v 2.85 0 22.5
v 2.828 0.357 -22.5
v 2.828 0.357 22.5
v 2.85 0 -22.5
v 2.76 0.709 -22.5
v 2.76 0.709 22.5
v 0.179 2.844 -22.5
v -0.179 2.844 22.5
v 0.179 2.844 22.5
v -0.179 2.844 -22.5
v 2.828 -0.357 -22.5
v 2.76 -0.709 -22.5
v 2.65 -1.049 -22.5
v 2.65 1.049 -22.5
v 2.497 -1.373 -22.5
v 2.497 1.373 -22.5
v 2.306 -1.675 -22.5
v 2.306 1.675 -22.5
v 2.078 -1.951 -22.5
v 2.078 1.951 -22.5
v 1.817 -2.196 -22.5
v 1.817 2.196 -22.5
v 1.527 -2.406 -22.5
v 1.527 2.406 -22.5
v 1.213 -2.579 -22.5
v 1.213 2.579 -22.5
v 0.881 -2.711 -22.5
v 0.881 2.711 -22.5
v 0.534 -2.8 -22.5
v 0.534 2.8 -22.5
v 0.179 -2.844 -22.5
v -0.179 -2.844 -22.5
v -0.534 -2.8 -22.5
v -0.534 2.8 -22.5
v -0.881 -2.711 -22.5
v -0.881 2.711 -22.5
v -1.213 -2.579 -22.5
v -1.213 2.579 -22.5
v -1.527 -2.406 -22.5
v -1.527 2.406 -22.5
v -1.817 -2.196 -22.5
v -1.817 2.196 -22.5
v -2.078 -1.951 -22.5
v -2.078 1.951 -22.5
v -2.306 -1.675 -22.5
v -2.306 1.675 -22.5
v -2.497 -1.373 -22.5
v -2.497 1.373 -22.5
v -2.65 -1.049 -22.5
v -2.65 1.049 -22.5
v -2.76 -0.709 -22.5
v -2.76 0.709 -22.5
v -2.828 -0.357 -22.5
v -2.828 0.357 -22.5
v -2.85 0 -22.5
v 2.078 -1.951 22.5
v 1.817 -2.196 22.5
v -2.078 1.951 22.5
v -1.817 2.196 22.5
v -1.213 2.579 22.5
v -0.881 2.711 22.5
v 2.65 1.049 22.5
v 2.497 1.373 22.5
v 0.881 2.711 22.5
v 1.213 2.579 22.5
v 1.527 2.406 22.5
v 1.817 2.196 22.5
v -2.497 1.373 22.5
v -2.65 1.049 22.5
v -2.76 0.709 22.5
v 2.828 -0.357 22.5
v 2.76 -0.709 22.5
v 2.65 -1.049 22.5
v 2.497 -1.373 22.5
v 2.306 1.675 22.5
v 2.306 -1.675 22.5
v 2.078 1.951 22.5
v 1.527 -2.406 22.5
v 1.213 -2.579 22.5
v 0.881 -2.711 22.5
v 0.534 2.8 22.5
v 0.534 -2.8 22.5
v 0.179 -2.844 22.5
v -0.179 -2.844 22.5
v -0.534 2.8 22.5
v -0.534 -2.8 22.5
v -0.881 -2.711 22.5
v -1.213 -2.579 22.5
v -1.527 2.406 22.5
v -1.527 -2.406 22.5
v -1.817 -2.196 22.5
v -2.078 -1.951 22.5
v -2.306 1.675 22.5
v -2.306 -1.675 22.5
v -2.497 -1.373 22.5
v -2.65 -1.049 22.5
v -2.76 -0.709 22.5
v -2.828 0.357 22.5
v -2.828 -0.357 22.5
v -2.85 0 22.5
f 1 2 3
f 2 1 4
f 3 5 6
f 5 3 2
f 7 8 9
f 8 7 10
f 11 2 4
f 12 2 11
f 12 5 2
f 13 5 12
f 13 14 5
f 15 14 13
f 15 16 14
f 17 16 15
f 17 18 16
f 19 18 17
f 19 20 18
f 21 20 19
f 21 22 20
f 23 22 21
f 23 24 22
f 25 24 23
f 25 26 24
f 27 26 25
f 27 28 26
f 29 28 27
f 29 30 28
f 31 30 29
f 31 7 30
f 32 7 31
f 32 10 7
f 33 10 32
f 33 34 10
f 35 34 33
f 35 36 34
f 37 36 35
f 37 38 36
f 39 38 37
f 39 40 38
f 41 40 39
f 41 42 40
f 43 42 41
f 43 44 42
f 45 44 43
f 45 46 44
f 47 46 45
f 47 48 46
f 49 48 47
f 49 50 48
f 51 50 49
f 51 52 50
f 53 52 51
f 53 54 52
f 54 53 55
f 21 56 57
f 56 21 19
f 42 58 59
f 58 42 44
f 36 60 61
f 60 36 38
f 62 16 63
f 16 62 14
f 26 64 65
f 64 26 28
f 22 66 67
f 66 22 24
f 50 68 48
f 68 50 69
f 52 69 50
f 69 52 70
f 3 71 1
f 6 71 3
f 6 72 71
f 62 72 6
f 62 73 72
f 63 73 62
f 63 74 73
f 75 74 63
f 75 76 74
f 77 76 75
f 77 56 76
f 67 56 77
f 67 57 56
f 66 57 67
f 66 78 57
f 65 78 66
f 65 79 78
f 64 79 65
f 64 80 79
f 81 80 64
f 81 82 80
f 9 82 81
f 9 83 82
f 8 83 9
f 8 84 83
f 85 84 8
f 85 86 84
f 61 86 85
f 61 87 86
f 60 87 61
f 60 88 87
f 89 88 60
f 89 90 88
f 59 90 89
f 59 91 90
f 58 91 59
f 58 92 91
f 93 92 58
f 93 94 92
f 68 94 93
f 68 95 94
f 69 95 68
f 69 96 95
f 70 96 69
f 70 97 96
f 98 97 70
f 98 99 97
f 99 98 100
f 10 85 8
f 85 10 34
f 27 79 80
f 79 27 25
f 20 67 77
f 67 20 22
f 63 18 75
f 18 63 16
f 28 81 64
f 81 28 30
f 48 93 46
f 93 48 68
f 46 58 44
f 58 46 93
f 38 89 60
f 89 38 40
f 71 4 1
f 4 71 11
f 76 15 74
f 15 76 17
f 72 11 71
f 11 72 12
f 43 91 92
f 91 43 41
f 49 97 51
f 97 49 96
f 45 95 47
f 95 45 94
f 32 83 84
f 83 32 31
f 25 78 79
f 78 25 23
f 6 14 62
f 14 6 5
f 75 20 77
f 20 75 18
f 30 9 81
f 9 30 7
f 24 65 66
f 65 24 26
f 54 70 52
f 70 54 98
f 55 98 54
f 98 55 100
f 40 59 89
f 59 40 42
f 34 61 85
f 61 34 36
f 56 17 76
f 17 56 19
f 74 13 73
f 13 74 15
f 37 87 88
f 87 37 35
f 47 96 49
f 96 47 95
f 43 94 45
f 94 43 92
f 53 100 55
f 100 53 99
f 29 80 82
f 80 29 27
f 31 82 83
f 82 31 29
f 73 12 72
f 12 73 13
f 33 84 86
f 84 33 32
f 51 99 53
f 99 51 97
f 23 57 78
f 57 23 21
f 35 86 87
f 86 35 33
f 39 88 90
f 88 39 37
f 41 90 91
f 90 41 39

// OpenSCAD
$fn = 50;


difference() {
	union() {
		translate(v = [0, 0, -22.5000000000]) {
			cylinder(h = 45, r = 2.8500000000);
		}
	}
	union() {
		translate(v = [0, 0, -100.0000000000]) {
			cylinder(h = 200, r = 0);
		}
	}
}
